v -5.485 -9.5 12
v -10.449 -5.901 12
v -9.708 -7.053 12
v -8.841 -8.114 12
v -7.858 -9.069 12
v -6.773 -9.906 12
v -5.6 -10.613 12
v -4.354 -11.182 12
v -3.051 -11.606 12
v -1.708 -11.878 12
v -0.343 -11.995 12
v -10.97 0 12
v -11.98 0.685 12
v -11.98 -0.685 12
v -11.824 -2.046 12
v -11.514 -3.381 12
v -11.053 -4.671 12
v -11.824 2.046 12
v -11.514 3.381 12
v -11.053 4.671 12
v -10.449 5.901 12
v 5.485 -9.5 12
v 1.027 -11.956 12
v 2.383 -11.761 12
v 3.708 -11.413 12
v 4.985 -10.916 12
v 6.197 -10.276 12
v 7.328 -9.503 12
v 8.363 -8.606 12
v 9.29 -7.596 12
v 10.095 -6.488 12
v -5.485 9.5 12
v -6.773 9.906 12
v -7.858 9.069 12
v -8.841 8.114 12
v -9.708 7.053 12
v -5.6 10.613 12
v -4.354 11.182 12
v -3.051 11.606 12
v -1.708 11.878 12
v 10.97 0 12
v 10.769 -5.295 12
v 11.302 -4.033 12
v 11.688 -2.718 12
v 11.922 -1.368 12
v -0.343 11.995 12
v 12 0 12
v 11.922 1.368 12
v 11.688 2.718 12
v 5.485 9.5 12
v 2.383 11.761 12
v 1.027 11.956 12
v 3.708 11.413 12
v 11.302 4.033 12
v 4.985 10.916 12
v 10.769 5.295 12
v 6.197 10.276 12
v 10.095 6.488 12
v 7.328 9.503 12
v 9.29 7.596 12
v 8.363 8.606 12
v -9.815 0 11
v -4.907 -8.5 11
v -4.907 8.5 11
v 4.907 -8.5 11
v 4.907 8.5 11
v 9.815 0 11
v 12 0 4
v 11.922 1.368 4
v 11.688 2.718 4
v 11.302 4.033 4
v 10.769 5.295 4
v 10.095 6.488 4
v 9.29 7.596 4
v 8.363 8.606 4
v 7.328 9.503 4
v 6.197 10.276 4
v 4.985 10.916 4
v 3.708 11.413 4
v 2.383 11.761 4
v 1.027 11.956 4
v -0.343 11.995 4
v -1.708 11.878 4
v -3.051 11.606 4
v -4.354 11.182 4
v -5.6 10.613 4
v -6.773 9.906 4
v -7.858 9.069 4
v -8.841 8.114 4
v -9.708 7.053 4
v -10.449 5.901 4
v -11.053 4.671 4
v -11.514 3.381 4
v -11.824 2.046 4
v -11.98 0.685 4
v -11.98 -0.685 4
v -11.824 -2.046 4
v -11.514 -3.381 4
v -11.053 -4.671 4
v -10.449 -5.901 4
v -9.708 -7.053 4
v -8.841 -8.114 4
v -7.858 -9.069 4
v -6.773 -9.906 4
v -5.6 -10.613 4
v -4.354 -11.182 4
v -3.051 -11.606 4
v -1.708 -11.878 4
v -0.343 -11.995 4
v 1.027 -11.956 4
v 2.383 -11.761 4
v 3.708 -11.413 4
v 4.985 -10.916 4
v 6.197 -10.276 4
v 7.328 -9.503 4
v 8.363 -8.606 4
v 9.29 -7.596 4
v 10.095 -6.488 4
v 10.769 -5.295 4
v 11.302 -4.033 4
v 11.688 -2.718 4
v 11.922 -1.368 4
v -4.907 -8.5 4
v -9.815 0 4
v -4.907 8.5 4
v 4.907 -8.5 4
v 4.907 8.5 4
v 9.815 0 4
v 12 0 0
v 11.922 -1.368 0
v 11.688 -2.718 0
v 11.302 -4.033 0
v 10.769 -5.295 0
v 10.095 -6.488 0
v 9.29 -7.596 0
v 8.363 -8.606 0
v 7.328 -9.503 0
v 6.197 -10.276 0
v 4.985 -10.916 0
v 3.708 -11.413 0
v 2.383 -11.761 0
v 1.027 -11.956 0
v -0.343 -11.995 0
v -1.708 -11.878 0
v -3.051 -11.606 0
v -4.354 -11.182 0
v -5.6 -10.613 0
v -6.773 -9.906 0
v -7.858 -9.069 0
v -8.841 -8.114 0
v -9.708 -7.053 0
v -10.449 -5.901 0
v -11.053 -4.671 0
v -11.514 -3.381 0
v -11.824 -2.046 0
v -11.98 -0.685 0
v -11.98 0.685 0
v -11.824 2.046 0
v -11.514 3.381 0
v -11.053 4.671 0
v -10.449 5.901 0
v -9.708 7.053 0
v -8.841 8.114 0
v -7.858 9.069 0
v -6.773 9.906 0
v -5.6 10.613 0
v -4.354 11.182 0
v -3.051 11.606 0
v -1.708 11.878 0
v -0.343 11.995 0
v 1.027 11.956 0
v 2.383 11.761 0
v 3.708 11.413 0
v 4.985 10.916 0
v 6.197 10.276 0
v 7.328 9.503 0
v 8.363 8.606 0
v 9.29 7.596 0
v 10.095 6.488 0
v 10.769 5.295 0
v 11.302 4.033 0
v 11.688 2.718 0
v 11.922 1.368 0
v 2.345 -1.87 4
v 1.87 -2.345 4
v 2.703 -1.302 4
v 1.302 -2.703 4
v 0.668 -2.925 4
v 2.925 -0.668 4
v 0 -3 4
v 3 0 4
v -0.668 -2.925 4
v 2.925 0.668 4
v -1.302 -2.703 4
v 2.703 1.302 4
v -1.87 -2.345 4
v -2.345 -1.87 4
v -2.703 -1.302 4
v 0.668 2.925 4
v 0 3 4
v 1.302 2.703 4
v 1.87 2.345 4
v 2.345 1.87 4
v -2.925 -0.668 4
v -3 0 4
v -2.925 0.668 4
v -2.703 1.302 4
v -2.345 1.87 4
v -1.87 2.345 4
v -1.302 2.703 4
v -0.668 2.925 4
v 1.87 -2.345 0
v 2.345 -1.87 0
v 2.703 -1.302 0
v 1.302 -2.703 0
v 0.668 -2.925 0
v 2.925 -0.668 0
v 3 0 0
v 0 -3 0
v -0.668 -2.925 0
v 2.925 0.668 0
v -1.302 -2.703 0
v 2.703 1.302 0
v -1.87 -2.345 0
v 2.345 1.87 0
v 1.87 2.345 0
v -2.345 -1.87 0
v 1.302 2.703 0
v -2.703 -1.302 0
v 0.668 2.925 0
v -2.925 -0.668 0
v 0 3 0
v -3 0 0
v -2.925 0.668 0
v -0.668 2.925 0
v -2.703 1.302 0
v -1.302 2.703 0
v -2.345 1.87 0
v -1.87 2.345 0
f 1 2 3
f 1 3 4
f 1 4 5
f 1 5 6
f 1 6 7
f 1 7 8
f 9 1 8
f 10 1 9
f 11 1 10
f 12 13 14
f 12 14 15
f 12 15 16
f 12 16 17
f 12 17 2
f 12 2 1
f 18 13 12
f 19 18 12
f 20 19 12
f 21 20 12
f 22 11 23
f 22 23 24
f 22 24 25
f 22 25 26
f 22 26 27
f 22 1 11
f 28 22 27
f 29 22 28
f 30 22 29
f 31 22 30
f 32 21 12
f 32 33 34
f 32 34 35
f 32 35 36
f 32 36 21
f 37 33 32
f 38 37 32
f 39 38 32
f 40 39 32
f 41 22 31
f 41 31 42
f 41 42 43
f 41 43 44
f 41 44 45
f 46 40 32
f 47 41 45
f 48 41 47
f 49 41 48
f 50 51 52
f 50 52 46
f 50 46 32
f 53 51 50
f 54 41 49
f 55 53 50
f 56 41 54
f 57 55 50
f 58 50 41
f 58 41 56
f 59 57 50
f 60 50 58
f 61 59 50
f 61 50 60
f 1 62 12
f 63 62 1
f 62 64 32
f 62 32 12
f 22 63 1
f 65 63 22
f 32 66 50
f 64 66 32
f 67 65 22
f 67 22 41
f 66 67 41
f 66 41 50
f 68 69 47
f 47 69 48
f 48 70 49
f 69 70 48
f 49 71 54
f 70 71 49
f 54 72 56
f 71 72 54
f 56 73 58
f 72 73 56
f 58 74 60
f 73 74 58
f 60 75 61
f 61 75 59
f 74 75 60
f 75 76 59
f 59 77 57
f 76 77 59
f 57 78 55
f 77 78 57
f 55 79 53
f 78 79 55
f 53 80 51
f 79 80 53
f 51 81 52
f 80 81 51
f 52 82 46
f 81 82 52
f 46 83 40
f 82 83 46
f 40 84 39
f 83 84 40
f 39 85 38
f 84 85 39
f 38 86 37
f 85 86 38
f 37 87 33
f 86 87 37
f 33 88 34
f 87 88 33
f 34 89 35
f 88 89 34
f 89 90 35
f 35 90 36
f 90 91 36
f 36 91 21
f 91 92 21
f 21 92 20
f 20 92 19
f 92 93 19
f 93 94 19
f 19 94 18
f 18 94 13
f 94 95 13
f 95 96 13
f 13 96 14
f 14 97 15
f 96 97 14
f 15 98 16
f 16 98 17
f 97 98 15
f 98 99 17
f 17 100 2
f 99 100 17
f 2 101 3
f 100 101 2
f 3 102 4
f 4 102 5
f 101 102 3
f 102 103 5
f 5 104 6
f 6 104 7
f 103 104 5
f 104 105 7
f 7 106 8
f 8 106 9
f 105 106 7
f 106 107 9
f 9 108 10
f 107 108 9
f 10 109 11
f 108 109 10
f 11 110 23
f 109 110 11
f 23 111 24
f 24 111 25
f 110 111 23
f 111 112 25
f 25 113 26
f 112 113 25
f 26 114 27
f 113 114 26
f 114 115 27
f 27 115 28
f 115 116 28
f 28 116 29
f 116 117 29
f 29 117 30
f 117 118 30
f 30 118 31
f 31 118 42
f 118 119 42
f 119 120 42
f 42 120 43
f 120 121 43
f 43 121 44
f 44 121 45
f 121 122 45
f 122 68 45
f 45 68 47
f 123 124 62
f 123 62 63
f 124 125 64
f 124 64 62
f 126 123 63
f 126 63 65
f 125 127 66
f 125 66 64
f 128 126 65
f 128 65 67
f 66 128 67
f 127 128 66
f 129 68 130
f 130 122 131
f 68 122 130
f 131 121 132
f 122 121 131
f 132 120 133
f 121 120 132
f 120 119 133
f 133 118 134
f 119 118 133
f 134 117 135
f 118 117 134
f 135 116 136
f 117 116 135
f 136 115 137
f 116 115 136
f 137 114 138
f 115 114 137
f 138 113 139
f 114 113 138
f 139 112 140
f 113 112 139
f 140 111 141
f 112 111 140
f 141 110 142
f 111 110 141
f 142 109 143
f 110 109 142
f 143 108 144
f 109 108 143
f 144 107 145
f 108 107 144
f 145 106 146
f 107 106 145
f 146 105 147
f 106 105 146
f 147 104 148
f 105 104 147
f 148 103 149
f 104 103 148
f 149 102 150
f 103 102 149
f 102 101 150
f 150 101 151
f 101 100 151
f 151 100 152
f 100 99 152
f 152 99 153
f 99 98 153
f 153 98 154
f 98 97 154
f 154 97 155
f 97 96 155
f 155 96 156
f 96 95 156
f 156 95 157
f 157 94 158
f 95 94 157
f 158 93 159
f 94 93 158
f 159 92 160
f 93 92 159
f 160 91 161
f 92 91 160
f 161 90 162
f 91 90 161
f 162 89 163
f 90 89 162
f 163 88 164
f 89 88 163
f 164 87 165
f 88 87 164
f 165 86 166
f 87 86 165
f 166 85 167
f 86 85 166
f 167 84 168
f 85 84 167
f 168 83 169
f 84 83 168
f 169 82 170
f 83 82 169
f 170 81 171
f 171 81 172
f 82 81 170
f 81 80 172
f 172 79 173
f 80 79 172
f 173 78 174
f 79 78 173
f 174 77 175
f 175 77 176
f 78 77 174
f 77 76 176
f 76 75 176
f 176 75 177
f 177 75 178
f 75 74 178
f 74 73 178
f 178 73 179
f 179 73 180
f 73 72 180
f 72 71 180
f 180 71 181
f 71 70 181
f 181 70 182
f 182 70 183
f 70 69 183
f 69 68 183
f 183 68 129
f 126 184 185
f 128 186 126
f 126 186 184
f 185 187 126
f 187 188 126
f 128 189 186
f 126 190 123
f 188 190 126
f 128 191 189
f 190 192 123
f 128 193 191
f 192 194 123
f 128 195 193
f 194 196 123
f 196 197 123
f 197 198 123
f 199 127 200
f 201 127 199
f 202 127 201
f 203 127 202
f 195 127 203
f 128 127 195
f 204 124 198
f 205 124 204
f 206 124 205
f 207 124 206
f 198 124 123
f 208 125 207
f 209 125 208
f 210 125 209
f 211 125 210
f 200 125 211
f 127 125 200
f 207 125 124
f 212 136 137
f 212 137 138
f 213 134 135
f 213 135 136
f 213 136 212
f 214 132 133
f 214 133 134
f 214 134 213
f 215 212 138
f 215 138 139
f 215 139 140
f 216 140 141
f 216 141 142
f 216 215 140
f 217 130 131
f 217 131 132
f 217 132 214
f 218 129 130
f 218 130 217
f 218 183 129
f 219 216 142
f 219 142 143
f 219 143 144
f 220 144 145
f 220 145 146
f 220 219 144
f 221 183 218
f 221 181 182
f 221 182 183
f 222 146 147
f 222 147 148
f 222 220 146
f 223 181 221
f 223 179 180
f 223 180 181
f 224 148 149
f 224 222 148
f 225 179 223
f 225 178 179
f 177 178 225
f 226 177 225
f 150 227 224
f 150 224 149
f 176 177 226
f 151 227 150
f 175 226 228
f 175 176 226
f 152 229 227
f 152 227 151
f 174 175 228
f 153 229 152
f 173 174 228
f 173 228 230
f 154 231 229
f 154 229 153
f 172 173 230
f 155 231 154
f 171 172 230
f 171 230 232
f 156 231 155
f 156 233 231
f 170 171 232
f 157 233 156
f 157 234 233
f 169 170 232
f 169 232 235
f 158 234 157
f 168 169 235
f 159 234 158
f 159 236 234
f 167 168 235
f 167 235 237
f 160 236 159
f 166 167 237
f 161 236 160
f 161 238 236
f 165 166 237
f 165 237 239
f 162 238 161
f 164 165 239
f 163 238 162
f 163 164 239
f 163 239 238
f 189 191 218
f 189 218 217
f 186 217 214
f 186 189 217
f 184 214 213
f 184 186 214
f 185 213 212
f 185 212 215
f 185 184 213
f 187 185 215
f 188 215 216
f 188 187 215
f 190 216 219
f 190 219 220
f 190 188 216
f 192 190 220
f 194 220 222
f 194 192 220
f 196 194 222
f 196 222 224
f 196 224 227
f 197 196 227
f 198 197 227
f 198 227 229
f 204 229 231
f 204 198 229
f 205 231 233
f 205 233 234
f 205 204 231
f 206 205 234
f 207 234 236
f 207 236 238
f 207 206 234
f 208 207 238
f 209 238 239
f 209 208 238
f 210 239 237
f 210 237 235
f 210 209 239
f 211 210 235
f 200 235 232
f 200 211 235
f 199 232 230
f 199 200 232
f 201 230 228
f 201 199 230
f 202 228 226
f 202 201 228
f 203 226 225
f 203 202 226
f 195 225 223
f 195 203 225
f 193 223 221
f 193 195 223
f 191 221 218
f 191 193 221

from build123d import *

# Parameters (mm, degrees)
SKETCH001_R  = 12
PAD001_DEPTH = 8
SKETCH_R     = 12
SKETCH_R_2   = 3
PAD_DEPTH    = 4
CHAMFER_SIZE = 1


with BuildPart() as part:
    # Sketch001 → Pad001 (new body)
    with BuildSketch(Plane.XY.offset(4)):
        Circle(SKETCH001_R)
        Polygon((4.907477, -8.5), (9.814955, 0), (4.907477, 8.5), (-4.907477, 8.5), (-9.814955, 0), (-4.907477, -8.5), align=None, mode=Mode.SUBTRACT)
    extrude(amount=PAD001_DEPTH)

    # Sketch (on Face8 of Pad001) → Pad (join)
    with BuildSketch(Plane(origin=(0, 0, 4), x_dir=(1, 0, 0), z_dir=(0, 0, -1))):
        Circle(SKETCH_R)
        Circle(SKETCH_R_2, mode=Mode.SUBTRACT)
    extrude(amount=PAD_DEPTH)

    # Chamfer
    chamfer_edges = [part.edges().sort_by_distance(p)[0] for p in [
        (-7.361216, -4.25, 12),
        (-7.361216, 4.25, 12),
        (0, 8.5, 12),
        (7.361216, 4.25, 12),
        (0, -8.5, 12),
        (7.361216, -4.25, 12),
    ]]
    chamfer(chamfer_edges, length=CHAMFER_SIZE)


solid = part.part
